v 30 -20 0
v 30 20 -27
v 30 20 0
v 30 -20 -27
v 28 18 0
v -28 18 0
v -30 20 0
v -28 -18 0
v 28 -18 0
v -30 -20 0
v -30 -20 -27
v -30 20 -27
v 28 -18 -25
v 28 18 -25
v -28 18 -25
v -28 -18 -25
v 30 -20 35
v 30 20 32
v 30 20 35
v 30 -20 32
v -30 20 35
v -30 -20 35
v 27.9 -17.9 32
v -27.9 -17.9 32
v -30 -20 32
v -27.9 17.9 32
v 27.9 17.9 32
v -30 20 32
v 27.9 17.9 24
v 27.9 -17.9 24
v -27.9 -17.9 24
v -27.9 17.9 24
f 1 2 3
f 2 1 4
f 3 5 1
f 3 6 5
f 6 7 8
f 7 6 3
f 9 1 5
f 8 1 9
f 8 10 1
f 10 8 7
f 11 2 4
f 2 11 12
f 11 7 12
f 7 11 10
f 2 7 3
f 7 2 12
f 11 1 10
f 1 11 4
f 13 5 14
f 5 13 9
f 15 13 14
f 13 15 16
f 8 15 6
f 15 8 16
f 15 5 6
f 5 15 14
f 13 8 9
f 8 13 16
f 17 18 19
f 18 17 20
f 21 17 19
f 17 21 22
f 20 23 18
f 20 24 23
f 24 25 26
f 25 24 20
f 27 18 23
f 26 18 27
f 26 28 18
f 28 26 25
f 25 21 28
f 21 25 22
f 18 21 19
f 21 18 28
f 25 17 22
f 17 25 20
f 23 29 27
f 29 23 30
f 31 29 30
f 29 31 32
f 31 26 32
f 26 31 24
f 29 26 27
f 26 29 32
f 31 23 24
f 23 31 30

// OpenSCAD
// Global settings for curved surfaces
$fn = 24;

// --- Box Dimensions (External) ---
L = 60; // Length in mm
W = 40; // Width in mm
H = 30; // Total Height in mm (base + lid top thickness)

// --- Wall Thickness ---
T = 2; // Wall and bottom thickness in mm (minimum 2mm as per rules)

// --- Lid Parameters ---
LID_TOP_H = 3; // Height of the flat top part of the lid in mm
LID_FIT_TOLERANCE = 0.2; // Total tolerance for the lid's lip to fit inside the base in mm.
                         // This means 0.1mm gap on each side (L and W).
LID_LIP_H = 8; // Height of the lip that extends from the lid into the box base in mm

// --- Derived Dimensions ---
// Height of the box base part (total height minus lid top height)
BASE_H = H - LID_TOP_H;

// --- Module: Box Base ---
// Generates the main body of the box. When called without translation,
// its geometric center will be at (0,0,0).
module box_base() {
    difference() {
        // Outer dimensions of the box base
        cube([L, W, BASE_H], center=true);

        // Inner void to create walls and a solid bottom of thickness T.
        // The inner cube is moved up by T/2 so that its bottom face is T mm
        // above the bottom face of the outer cube.
        translate([0, 0, T/2]) {
            cube([L - 2*T, W - 2*T, BASE_H - T], center=true);
        }
    }
}

// --- Module: Box Lid ---
// Generates the lid, designed to fit onto the box_base.
// When called without translation, its geometric center will be at (0,0,0).
module box_lid() {
    union() {
        // Top flat part of the lid
        cube([L, W, LID_TOP_H], center=true);

        // Lip that fits inside the box base's walls.
        // Its length and width are reduced by 2*T (for box walls)
        // and LID_FIT_TOLERANCE (for fit clearance).
        // Its Z position is adjusted so its top surface aligns with the
        // bottom surface of the LID_TOP_H part.
        translate([0, 0, -LID_TOP_H/2 - LID_LIP_H/2]) {
            cube([L - 2*T - LID_FIT_TOLERANCE, W - 2*T - LID_FIT_TOLERANCE, LID_LIP_H], center=true);
        }
    }
}

// --- Main Render Section ---
// Calls the modules to display the box base and lid.
// They are translated for clear visualization, showing the lid above the base.

// Display the box base. It's translated downwards so its bottom surface
// rests on the Z=0 plane, which is typical for 3D printing.
translate([0, 0, -BASE_H/2]) {
    box_base();
}

// Display the box lid. It's translated upwards to sit above the base
// with a small gap (5mm) for better visualization of the two separate parts.
// The lid's center is positioned at the top of the base (BASE_H) + half its own height (LID_TOP_H/2) + gap.
translate([0, 0, BASE_H + LID_TOP_H/2 + 5]) {
    box_lid();
}
